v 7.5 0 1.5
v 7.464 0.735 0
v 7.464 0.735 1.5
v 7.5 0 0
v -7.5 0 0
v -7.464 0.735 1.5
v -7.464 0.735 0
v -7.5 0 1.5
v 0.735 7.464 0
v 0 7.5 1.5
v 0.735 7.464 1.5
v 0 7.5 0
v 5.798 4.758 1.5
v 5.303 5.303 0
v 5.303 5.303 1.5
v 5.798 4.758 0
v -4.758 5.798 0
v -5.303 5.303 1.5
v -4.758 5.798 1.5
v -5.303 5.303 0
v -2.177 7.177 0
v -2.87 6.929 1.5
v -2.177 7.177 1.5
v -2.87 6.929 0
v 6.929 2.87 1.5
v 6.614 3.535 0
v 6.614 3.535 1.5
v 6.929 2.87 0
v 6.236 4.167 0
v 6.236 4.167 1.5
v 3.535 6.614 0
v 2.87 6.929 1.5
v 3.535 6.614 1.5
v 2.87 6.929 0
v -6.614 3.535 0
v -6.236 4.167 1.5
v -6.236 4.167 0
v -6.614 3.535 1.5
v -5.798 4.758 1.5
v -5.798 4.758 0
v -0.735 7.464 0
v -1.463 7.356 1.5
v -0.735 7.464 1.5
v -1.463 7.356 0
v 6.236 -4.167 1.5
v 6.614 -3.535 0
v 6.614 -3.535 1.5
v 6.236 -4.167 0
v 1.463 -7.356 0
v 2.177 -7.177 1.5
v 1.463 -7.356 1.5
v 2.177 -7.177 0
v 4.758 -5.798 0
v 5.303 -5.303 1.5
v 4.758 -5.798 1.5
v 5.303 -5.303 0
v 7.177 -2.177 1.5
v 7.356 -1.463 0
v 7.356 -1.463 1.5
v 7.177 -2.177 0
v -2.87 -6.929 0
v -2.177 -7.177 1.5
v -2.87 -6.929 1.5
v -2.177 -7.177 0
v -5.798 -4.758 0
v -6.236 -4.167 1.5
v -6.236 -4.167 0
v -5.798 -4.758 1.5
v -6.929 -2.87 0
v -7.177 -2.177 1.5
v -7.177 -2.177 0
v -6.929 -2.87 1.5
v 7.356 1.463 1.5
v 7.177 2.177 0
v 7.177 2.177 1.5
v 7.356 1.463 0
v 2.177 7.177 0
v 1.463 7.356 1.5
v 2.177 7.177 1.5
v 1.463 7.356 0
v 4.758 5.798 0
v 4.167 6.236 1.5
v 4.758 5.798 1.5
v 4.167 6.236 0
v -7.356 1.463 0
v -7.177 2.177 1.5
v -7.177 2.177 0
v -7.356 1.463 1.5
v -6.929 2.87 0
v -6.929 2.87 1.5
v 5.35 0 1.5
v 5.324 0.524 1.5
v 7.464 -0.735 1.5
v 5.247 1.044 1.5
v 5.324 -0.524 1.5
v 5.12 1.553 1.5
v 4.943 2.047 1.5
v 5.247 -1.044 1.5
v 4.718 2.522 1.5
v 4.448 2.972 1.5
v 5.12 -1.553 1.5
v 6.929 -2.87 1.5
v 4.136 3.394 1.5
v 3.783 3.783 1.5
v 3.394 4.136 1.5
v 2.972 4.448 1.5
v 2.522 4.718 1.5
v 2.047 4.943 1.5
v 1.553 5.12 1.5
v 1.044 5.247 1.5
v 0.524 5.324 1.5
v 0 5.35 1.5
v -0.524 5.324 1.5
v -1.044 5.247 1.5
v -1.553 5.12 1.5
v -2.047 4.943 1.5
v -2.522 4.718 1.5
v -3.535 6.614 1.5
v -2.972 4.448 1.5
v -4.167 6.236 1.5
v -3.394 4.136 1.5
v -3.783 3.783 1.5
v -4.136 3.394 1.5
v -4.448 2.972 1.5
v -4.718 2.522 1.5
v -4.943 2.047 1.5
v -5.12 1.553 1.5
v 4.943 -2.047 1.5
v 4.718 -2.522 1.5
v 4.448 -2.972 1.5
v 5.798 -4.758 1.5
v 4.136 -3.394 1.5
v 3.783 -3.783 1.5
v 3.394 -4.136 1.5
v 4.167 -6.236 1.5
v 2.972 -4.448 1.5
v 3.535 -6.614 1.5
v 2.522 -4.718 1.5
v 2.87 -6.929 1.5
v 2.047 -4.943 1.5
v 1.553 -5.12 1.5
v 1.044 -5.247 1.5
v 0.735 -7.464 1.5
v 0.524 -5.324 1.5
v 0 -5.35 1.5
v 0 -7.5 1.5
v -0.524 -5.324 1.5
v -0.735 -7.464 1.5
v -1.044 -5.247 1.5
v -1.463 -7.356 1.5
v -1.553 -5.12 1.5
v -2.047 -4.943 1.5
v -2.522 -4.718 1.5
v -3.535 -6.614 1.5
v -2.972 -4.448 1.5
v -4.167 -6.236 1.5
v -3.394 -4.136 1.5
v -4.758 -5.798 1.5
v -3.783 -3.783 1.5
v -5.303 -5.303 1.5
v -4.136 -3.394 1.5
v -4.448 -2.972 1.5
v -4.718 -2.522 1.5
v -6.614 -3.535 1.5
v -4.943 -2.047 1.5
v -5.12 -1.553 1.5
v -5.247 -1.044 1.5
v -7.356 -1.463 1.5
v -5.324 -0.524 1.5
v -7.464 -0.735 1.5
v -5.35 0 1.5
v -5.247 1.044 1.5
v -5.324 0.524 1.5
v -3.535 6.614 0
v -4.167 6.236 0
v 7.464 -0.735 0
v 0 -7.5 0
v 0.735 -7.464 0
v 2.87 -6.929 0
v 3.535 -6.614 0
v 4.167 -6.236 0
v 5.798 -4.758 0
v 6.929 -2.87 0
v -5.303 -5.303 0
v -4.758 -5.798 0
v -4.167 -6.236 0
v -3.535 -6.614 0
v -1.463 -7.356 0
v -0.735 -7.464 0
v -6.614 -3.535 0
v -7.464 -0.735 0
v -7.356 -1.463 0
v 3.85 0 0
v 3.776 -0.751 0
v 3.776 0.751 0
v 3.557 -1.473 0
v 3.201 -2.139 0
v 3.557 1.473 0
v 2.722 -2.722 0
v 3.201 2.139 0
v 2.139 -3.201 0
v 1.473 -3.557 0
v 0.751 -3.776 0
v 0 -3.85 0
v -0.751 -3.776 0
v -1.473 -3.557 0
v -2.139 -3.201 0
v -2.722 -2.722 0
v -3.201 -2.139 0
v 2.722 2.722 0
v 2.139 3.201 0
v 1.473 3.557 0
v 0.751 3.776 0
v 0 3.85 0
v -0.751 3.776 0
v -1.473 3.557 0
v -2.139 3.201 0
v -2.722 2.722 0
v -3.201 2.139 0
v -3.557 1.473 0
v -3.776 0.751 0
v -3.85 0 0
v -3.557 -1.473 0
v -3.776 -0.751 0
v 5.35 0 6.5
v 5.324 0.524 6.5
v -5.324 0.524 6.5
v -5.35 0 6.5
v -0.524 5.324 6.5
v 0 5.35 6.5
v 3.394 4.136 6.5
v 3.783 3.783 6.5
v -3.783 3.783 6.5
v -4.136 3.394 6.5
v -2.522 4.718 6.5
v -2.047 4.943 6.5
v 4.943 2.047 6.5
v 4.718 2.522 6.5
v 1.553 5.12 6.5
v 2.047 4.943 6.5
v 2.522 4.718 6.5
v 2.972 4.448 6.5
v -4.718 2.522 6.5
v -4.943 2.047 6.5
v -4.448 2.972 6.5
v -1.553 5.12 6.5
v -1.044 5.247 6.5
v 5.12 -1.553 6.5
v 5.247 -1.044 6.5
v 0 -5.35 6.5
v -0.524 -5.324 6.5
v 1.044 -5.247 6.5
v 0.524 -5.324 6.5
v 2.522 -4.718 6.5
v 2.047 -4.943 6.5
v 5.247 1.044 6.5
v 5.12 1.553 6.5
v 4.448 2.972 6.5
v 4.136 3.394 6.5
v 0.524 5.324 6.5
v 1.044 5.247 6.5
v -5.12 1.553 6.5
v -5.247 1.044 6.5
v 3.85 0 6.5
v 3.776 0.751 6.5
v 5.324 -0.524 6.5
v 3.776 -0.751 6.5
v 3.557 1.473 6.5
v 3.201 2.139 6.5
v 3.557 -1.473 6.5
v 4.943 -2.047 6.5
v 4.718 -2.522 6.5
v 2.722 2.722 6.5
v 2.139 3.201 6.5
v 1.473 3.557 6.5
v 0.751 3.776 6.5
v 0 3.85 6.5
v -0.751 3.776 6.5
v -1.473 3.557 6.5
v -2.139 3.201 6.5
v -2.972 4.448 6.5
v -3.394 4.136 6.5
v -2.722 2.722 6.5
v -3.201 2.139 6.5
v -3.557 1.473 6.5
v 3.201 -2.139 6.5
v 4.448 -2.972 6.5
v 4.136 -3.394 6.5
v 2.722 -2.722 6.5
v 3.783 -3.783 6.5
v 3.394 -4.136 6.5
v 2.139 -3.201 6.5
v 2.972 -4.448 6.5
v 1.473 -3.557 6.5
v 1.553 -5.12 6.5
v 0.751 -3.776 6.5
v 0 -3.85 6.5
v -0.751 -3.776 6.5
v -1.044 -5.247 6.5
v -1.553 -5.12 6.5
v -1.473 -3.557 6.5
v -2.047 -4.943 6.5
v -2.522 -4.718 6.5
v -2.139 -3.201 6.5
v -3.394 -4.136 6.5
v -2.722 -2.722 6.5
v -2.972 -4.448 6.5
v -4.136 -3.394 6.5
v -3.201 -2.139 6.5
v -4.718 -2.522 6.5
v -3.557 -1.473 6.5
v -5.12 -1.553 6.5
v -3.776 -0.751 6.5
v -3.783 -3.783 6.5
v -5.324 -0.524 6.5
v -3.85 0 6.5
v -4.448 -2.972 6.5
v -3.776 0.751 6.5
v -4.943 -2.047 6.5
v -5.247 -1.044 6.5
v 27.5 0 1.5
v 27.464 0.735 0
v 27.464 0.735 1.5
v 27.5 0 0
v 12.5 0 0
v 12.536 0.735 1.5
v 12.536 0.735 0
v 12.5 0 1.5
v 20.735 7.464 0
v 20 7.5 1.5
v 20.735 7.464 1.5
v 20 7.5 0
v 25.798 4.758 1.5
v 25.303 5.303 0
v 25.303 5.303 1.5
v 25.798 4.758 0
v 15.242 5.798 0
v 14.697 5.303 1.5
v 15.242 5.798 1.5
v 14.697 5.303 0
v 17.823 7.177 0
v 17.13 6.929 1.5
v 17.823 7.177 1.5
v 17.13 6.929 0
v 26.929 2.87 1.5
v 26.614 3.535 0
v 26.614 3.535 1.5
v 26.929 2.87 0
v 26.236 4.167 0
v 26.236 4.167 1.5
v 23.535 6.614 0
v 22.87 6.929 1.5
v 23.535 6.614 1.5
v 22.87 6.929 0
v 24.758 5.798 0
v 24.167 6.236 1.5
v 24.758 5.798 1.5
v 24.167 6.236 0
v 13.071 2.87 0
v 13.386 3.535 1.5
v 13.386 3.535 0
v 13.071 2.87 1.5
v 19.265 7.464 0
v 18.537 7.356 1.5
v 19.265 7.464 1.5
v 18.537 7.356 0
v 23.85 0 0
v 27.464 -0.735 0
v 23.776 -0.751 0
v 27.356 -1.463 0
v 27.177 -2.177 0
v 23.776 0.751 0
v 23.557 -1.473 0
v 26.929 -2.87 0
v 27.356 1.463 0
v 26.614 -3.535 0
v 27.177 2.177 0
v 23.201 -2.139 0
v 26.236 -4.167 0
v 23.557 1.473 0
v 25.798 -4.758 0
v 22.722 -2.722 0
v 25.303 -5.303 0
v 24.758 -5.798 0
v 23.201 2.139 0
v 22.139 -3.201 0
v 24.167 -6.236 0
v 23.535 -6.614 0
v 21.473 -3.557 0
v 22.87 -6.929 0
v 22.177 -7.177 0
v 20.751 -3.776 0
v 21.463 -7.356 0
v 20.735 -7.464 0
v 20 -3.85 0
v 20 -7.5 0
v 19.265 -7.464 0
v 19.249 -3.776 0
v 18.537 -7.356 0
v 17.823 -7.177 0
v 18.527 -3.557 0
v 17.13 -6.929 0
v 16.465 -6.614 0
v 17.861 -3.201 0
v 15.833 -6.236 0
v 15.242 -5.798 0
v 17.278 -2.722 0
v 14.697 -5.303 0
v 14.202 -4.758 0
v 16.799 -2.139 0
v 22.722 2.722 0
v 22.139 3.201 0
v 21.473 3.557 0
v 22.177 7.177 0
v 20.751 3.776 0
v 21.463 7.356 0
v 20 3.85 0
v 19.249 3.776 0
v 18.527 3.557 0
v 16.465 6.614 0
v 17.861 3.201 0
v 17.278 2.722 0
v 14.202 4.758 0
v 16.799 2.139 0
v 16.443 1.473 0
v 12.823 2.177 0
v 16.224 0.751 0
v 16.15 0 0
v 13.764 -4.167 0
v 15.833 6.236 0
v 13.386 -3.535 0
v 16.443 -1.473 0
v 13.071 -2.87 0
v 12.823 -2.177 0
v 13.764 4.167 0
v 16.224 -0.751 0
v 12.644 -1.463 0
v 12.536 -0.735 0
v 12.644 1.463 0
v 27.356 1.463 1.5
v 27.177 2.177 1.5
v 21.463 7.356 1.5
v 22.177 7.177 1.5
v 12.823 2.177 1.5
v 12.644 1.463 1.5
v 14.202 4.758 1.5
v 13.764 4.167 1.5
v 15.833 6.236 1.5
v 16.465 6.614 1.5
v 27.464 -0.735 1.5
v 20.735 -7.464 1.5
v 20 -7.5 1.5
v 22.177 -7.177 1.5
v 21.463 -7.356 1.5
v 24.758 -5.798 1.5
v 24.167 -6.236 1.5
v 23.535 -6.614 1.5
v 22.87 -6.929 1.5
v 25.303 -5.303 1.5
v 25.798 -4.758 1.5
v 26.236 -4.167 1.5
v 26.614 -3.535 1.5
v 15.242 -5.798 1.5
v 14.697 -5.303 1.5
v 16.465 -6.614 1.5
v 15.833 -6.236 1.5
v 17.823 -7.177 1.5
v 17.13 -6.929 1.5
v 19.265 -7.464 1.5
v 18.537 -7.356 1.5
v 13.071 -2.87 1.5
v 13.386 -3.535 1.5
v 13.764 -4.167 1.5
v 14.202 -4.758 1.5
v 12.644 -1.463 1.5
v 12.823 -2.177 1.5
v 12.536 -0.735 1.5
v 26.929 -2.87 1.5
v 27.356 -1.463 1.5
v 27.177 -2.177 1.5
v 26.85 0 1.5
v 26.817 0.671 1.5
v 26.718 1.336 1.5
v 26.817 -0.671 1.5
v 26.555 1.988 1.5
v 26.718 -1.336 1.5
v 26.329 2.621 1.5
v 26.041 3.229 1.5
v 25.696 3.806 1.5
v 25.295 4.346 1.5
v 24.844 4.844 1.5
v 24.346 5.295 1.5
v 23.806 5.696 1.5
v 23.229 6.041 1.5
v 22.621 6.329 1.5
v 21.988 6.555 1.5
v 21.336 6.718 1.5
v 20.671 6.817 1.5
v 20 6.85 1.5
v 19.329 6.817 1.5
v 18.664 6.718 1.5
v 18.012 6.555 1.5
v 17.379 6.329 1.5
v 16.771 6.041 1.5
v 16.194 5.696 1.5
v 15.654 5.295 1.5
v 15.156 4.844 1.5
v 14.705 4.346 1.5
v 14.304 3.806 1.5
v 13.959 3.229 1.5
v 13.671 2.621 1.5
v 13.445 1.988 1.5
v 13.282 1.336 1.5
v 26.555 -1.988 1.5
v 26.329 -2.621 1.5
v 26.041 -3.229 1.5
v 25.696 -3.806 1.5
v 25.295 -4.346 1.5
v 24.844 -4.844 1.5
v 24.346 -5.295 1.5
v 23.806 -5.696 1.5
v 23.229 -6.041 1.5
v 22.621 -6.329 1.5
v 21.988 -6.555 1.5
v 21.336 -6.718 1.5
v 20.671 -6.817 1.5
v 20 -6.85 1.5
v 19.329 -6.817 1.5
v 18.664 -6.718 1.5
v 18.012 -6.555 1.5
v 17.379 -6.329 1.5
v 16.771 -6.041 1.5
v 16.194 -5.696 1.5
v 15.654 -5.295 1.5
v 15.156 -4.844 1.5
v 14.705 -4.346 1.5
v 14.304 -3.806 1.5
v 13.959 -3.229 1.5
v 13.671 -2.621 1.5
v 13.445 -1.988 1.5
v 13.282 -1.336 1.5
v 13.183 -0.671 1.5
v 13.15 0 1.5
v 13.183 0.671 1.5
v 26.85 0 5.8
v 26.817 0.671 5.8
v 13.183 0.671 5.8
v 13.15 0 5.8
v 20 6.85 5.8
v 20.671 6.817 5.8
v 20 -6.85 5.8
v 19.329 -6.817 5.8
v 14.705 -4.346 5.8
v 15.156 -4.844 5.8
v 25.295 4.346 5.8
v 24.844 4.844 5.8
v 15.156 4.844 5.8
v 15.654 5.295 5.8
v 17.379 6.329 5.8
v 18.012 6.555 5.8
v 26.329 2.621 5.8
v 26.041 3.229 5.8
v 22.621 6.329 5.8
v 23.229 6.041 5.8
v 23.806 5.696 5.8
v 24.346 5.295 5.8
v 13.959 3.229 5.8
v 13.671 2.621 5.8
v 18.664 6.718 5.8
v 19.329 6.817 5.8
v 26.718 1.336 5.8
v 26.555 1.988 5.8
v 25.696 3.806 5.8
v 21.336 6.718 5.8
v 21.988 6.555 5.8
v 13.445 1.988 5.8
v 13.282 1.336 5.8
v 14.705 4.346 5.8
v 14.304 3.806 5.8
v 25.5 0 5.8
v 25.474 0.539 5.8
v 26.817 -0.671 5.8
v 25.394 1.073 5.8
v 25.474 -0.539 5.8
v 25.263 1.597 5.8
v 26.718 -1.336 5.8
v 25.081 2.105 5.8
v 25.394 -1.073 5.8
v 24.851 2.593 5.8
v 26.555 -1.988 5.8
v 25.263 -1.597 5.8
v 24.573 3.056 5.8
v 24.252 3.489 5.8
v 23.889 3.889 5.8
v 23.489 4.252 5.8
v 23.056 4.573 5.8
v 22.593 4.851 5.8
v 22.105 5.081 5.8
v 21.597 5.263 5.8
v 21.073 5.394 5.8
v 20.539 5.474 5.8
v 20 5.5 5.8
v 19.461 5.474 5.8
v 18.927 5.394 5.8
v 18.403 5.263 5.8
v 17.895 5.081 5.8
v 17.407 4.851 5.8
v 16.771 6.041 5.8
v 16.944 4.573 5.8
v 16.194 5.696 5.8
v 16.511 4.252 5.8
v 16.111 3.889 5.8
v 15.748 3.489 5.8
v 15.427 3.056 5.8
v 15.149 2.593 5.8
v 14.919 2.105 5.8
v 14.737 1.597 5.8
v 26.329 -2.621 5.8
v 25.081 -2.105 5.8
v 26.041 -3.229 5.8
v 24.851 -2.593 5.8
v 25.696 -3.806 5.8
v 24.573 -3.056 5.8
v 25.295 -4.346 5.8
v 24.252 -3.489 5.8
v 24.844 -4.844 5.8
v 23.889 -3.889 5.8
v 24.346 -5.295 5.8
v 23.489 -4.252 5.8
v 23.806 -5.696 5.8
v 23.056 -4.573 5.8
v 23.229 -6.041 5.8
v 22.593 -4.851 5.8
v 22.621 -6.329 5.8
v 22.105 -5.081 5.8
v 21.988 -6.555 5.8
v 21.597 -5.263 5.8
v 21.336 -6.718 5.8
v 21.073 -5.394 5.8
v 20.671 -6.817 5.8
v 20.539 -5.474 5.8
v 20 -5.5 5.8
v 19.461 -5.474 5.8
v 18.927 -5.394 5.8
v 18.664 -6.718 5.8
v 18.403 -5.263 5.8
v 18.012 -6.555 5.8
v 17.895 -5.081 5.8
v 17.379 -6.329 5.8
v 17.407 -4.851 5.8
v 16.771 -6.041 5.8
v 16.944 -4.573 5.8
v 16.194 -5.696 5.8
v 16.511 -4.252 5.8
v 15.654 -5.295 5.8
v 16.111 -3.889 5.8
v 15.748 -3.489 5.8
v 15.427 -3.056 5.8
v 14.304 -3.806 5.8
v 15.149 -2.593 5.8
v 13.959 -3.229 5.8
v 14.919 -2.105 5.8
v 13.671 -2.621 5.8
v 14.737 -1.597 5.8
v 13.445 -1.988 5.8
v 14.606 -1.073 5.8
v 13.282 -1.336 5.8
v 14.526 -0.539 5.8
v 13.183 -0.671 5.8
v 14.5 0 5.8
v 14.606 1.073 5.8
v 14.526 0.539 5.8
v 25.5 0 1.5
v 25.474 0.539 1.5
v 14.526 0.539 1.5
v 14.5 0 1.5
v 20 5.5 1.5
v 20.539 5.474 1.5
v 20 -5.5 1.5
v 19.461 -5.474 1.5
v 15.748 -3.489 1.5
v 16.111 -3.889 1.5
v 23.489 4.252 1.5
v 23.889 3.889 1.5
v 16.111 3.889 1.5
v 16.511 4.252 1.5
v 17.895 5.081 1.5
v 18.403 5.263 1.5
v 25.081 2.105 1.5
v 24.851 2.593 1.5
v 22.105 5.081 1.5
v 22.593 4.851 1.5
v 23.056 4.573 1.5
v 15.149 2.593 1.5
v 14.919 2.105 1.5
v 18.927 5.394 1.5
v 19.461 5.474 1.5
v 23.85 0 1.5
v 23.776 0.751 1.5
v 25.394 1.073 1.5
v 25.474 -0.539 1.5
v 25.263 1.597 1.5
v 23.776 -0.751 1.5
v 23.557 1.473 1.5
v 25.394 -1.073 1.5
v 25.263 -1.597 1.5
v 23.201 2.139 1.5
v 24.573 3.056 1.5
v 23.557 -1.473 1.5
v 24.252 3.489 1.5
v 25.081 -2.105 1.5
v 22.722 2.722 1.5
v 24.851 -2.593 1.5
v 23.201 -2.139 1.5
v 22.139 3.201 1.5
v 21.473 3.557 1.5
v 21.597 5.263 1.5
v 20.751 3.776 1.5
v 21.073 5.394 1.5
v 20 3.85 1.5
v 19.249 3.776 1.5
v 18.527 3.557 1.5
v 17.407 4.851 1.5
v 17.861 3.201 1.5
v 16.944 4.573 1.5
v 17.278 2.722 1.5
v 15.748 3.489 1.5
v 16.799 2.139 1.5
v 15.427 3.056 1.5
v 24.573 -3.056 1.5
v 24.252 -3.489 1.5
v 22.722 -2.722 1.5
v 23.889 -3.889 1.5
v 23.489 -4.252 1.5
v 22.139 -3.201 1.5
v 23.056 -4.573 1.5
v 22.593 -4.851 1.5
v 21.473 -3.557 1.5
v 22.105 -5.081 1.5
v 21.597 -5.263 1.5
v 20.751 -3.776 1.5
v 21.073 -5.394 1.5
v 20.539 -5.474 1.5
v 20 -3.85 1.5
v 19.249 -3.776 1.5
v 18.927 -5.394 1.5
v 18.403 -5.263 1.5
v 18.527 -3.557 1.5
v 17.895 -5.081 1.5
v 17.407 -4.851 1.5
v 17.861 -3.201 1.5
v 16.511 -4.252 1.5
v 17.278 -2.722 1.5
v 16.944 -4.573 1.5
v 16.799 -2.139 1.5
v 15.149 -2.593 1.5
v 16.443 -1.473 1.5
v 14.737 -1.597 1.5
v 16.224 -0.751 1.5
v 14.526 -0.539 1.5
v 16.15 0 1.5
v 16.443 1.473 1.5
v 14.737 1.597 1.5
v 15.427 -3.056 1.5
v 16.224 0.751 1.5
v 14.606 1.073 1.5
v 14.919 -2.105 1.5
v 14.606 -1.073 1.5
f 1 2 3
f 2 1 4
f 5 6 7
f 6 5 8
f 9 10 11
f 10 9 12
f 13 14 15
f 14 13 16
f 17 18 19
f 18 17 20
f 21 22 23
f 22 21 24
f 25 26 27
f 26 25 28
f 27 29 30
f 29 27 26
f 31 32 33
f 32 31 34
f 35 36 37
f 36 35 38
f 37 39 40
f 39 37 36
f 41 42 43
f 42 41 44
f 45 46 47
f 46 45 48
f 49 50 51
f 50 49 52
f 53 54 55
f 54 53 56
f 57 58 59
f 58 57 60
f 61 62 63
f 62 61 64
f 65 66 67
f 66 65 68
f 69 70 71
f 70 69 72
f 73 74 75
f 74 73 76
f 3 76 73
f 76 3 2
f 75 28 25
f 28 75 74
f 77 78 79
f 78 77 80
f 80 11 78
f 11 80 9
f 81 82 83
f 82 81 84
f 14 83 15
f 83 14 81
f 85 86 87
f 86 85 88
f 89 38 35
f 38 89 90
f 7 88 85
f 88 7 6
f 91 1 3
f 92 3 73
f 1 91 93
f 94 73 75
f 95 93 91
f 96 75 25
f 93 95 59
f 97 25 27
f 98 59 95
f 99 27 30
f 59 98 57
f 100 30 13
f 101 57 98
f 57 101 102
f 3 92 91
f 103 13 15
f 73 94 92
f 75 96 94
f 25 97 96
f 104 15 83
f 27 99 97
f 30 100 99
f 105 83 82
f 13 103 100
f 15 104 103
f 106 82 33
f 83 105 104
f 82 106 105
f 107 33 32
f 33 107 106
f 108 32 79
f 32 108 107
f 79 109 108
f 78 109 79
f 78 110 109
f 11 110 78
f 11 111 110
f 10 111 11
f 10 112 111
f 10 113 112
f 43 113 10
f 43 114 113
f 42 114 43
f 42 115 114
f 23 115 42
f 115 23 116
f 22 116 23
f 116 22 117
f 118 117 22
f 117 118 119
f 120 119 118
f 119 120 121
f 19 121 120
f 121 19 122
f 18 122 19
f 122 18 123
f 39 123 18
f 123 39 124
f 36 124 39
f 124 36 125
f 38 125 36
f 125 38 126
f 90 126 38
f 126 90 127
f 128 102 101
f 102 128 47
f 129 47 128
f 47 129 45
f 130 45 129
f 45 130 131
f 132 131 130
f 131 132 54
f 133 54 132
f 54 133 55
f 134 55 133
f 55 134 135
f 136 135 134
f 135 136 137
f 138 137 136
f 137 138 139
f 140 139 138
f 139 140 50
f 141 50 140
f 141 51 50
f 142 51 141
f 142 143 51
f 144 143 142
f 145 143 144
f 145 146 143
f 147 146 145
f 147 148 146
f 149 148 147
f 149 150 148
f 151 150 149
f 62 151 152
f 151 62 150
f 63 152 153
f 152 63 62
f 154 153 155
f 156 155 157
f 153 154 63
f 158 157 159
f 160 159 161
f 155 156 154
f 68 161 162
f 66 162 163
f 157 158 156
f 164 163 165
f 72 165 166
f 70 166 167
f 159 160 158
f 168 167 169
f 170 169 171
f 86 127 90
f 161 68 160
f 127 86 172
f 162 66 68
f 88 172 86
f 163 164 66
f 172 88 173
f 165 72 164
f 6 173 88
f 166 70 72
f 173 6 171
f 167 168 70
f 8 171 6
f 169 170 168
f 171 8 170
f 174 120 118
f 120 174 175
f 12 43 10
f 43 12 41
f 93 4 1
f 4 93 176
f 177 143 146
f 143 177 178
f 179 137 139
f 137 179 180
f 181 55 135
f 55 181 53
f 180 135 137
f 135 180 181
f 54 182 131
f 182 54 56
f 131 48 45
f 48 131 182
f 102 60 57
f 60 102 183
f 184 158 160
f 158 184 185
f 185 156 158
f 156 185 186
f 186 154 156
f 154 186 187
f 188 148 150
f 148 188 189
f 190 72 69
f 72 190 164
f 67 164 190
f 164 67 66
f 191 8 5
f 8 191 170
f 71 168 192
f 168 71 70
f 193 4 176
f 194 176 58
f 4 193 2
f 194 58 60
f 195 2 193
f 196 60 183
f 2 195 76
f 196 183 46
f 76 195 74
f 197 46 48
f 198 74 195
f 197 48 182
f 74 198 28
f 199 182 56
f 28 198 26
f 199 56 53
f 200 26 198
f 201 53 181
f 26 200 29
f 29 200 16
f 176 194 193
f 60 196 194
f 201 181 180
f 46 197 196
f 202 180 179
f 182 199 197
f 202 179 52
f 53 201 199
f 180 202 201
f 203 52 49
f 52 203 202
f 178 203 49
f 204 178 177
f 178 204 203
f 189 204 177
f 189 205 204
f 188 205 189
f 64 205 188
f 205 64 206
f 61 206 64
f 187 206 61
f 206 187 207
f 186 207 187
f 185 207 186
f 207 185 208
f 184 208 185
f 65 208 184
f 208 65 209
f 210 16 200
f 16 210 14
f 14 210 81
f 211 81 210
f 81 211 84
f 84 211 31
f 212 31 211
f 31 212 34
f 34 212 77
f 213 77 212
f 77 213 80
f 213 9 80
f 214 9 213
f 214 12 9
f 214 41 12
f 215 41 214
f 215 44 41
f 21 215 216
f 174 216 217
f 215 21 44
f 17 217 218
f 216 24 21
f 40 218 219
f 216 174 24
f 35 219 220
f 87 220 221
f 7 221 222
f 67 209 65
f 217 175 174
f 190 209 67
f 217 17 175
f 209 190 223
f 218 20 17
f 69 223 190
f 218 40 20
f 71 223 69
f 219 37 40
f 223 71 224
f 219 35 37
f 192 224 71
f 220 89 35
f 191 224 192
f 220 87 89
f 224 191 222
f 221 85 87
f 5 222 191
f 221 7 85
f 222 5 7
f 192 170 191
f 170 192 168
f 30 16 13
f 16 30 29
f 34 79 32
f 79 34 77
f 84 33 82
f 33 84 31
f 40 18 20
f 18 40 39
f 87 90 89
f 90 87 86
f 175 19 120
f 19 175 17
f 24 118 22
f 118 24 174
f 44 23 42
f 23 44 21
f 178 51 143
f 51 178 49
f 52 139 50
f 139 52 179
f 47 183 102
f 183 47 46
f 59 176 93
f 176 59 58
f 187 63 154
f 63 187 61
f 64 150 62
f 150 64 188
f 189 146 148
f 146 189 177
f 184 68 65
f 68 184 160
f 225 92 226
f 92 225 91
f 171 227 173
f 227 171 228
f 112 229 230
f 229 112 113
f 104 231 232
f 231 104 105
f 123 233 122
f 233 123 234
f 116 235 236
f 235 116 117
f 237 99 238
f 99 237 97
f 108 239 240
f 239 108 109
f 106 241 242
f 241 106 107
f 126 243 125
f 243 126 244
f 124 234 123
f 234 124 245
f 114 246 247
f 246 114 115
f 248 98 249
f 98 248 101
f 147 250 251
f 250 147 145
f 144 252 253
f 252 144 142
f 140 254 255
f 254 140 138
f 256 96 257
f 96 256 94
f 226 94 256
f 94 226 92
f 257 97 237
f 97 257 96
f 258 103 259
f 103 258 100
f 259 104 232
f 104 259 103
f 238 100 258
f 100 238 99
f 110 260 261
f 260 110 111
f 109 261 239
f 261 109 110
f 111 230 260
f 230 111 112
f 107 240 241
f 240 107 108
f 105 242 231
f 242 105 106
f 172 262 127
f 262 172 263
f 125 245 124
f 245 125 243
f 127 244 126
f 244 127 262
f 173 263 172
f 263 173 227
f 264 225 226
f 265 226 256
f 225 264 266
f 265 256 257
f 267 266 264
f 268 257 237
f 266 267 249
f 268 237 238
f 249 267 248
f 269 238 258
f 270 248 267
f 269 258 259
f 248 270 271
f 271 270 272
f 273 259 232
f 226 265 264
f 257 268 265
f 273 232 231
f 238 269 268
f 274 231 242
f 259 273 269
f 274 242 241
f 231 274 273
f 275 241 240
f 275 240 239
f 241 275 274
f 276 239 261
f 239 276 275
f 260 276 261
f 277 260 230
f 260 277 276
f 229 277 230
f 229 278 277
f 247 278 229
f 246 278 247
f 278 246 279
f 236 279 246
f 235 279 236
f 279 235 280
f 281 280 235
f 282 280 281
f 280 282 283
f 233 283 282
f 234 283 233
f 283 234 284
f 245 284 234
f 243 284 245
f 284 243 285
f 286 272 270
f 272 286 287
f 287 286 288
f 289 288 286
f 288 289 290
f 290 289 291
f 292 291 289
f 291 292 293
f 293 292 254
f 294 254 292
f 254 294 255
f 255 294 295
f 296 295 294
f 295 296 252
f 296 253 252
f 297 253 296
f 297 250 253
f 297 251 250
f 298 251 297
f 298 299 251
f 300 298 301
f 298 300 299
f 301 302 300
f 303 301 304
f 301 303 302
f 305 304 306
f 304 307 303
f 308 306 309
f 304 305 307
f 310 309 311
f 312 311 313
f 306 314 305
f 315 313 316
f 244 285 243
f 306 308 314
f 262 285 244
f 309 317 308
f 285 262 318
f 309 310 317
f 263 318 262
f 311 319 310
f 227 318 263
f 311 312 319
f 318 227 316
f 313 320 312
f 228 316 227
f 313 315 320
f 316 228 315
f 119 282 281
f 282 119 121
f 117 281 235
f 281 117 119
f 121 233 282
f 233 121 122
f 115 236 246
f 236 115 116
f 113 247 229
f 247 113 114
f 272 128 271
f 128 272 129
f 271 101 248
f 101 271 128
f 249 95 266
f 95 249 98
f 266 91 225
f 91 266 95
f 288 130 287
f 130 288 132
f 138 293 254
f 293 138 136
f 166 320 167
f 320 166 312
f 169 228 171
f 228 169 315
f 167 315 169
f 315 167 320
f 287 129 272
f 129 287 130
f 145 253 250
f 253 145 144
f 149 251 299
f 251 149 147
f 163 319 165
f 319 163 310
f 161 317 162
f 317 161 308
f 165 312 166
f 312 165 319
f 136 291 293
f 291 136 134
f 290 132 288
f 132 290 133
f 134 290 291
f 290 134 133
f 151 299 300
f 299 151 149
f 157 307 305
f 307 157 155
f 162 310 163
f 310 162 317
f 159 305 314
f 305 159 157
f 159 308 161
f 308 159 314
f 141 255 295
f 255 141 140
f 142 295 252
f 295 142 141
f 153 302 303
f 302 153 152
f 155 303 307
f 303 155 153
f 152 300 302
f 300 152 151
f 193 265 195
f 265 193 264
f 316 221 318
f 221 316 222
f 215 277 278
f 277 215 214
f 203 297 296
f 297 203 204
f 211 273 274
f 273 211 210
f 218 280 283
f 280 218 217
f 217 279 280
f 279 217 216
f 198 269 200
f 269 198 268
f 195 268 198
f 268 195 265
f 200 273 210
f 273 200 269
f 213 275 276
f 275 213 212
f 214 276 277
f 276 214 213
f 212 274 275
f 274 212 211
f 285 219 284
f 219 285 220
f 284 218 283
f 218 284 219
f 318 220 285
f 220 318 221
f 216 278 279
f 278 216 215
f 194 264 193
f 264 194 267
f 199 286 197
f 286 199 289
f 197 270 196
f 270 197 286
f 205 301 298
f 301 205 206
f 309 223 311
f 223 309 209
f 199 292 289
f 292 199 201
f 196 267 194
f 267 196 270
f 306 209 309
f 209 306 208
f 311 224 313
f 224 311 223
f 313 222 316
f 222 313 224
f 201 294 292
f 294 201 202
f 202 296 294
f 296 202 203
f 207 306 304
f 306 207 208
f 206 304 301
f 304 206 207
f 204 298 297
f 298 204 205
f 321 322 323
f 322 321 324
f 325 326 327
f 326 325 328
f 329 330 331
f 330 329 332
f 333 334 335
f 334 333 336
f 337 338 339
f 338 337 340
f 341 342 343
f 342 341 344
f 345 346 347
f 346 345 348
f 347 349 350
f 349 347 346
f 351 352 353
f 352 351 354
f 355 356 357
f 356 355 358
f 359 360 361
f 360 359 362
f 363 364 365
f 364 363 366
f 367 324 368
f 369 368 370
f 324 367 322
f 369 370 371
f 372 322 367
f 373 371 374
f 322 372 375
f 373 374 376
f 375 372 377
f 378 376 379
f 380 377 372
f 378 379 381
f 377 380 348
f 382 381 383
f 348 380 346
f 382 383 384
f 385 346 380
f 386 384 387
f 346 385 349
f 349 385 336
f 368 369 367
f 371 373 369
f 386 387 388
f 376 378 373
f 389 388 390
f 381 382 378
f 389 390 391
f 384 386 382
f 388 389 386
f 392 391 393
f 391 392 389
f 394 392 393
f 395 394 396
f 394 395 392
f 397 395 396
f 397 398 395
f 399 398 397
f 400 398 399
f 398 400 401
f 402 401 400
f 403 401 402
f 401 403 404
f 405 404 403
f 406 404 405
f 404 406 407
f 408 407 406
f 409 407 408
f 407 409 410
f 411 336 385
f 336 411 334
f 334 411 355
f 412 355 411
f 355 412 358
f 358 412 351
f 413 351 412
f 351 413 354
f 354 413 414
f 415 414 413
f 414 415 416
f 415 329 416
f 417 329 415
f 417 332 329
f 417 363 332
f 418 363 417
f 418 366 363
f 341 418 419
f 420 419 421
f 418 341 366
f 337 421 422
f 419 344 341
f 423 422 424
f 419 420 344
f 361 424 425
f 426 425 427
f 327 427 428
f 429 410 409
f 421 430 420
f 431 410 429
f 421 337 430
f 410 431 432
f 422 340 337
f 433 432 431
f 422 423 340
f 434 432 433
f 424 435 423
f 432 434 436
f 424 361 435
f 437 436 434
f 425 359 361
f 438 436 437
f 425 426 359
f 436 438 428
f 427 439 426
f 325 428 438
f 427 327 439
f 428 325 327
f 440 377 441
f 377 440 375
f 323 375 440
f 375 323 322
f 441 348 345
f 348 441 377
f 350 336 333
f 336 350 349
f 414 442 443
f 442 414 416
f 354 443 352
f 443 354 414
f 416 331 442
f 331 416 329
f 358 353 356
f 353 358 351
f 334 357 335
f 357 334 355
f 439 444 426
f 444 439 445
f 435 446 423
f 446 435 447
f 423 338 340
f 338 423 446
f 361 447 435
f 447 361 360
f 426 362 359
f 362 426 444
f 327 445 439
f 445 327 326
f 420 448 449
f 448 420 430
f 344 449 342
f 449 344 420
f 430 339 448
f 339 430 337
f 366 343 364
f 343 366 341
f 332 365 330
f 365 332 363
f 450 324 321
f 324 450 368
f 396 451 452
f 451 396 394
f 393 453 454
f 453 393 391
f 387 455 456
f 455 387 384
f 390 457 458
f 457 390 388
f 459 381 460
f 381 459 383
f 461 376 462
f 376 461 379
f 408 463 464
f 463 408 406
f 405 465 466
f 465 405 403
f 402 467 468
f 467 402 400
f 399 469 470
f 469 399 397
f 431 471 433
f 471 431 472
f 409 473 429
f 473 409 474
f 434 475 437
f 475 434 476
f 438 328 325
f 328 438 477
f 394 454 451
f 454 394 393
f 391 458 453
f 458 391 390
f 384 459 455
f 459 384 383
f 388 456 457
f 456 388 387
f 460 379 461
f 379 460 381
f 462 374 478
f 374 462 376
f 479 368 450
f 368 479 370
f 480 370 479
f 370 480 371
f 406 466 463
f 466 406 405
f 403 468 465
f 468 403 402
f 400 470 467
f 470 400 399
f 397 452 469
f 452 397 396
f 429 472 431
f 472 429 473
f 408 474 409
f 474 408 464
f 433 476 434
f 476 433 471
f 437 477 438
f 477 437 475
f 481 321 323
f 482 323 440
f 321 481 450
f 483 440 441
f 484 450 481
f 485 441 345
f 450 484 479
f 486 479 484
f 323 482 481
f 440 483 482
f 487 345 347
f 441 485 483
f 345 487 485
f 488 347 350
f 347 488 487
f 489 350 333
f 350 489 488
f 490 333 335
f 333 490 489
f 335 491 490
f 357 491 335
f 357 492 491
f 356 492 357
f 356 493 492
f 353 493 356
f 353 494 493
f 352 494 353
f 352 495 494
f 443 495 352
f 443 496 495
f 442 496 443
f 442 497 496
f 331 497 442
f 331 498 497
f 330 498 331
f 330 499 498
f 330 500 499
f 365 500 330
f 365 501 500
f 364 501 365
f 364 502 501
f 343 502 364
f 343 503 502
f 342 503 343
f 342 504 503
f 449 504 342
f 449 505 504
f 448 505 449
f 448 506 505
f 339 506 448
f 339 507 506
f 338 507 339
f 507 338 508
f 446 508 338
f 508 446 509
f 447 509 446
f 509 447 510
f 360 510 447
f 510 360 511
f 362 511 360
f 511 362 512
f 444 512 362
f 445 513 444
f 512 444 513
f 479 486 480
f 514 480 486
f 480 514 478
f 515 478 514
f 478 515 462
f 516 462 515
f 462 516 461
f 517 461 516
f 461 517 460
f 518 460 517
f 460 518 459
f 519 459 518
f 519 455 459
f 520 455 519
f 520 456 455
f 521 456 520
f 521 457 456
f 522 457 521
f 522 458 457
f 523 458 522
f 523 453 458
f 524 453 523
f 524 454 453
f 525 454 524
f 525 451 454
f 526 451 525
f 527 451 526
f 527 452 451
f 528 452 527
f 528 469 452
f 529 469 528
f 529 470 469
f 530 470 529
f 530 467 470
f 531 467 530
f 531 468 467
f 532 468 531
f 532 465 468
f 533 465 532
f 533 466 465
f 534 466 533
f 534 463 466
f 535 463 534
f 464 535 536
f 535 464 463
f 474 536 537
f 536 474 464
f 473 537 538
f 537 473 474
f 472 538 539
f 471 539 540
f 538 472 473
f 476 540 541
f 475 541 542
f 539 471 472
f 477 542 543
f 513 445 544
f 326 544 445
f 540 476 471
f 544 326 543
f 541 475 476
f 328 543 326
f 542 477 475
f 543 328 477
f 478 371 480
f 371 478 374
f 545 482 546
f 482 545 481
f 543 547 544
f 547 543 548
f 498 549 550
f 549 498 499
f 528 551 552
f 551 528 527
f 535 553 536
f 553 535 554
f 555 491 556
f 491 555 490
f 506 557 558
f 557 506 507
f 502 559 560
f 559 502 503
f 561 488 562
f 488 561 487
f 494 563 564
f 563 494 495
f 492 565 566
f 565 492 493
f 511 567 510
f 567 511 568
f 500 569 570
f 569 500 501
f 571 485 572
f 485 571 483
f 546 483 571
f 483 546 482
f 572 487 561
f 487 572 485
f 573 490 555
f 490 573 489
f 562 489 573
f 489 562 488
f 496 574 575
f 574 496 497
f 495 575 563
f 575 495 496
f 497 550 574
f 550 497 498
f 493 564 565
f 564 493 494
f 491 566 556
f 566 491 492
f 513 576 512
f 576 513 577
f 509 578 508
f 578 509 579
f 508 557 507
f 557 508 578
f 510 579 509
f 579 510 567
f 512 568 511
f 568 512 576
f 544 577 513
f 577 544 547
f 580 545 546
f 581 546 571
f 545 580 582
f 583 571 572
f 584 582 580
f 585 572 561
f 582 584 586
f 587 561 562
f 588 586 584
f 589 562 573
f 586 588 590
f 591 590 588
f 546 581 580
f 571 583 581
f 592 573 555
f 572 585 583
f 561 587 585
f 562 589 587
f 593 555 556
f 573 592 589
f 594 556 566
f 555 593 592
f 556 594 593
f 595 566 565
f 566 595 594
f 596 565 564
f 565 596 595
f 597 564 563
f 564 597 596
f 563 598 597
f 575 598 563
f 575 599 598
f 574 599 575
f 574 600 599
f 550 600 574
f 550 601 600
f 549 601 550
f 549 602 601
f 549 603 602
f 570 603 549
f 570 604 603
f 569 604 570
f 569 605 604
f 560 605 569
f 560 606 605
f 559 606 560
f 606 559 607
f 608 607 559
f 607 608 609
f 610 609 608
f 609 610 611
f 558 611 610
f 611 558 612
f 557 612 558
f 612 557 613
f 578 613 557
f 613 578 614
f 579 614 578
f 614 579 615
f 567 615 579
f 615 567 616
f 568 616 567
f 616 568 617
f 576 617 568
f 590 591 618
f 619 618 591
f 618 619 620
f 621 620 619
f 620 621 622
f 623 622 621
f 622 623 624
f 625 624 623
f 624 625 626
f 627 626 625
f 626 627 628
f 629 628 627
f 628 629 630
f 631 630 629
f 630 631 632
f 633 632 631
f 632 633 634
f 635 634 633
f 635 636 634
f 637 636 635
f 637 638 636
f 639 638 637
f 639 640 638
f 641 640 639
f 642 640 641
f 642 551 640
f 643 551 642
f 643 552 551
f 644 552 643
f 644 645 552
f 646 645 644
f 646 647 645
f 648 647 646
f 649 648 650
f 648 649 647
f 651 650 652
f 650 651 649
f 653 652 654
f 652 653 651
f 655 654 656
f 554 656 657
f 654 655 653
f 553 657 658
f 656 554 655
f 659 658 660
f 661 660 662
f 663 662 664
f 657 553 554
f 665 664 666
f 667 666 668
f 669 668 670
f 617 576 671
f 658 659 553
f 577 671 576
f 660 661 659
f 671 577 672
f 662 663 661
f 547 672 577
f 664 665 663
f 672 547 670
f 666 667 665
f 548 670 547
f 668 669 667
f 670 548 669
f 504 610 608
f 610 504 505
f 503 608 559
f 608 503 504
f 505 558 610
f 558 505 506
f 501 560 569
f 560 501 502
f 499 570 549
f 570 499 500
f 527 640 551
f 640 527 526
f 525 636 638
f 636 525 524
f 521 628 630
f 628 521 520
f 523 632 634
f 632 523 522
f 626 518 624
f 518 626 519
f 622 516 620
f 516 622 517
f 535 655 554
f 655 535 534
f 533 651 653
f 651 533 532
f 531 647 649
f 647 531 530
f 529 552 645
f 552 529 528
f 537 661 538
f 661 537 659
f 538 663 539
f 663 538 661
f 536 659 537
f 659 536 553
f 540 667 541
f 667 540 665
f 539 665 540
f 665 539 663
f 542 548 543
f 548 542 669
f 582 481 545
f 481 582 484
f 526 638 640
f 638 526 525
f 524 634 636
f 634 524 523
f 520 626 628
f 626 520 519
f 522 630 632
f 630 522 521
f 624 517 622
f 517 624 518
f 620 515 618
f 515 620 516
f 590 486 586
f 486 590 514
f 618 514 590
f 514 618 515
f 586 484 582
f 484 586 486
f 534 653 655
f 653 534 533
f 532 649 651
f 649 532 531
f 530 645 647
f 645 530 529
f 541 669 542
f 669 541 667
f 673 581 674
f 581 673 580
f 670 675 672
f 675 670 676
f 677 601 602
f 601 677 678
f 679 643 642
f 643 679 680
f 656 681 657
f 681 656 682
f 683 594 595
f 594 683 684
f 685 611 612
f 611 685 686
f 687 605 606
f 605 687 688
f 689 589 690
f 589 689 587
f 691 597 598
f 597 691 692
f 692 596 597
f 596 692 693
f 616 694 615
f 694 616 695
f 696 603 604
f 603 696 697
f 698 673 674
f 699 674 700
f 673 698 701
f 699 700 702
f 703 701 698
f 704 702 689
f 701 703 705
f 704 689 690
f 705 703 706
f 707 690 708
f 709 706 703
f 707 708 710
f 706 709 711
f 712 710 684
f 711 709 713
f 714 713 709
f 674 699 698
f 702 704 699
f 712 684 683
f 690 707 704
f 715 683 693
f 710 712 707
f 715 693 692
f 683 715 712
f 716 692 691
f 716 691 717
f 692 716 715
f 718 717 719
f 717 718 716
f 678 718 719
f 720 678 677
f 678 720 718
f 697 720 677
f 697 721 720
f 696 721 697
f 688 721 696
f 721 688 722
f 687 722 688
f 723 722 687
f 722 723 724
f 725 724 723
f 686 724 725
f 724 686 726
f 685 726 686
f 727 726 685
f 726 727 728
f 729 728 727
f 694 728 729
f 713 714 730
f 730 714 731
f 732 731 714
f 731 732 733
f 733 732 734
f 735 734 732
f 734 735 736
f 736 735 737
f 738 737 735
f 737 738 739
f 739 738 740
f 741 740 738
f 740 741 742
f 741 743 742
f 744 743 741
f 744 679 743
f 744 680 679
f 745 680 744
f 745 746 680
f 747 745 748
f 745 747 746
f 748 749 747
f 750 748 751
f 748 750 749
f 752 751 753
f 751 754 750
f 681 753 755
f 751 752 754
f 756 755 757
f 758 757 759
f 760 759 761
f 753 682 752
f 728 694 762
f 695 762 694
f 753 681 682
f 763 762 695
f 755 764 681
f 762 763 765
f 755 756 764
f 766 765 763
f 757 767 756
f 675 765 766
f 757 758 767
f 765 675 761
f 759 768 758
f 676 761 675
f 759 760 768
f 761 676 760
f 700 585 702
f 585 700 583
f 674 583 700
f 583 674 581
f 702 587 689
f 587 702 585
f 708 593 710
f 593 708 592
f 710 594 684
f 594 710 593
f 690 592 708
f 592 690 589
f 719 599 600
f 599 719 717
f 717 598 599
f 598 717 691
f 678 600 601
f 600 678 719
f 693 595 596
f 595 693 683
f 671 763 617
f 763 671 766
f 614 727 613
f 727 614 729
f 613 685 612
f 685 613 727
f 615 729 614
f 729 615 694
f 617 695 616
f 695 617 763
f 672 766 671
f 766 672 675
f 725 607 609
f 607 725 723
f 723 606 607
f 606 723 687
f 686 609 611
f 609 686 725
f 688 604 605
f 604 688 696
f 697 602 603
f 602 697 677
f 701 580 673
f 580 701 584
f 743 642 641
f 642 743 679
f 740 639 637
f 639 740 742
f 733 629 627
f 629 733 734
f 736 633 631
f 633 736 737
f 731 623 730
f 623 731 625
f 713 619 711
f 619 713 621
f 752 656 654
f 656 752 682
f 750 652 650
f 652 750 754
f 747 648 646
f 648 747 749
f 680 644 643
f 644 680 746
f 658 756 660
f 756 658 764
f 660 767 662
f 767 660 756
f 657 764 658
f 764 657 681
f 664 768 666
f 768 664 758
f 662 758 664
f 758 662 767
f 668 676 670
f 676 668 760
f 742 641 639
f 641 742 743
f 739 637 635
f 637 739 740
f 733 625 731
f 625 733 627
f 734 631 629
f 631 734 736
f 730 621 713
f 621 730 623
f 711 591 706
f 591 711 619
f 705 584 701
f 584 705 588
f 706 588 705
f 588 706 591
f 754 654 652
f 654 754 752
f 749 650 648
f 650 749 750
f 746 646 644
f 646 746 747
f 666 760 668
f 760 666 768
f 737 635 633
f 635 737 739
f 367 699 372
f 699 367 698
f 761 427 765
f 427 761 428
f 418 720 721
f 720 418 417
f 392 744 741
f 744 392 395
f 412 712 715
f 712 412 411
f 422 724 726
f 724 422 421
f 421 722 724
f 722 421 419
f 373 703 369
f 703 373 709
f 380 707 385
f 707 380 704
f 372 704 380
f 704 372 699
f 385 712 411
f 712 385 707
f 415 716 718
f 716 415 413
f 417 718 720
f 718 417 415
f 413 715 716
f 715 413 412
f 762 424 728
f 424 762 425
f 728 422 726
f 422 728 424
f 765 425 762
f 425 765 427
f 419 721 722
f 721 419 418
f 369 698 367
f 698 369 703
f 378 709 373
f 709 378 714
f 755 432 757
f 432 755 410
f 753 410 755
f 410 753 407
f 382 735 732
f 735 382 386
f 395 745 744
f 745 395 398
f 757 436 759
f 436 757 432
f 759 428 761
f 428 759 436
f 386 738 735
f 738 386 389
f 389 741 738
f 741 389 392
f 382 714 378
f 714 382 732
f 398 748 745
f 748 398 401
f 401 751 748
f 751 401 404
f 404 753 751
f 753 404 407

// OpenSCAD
// Grommet for truck body hole - Bandeirante
// Two-piece: inner tube with flange + cap that glues on the other side

/* --- Parameters --- */
hole_d     = 11;    // body hole diameter
panel_t    = 0.5;   // panel thickness
wall_t     = 1.5;   // tube wall thickness
clearance  = 0.3;   // fit clearance
wire_d     = hole_d - clearance - wall_t * 2;  // maximize wire passage
flange_d   = 15;    // flange (stop) diameter
flange_t   = 1.5;   // flange thickness
tube_h     = 5;     // tube height beyond flange

tube_od = hole_d - clearance;

// Cap parameters
cap_d  = flange_d;
cap_t  = 1.5;       // cap thickness
cap_lip = 4.3;  // socket depth matches panel thickness

/* --- Part 1: Inner tube with flange --- */
module inner_tube() {
    difference() {
        union() {
            // Flange
            cylinder(h=flange_t, d=flange_d, $fn=64);
            // Tube
            translate([0, 0, flange_t])
                cylinder(h=tube_h, d=tube_od, $fn=64);
        }
        // Wire hole
        translate([0, 0, -1])
            cylinder(h=flange_t + tube_h + 2, d=wire_d, $fn=32);
    }
}

/* --- Part 2: Cap (glues on the other side) --- */
module cap() {
    difference() {
        union() {
            // Flat cap
            cylinder(h=cap_t, d=cap_d, $fn=64);
            // Socket that slides over the tube end
            translate([0, 0, cap_t])
                cylinder(h=cap_lip, d=tube_od + wall_t * 2, $fn=64);
        }
        // Socket bore (fits snug over tube)
        translate([0, 0, cap_t])
            cylinder(h=cap_lip + 1, d=tube_od + clearance, $fn=64);
        // Wire hole
        translate([0, 0, -1])
            cylinder(h=cap_t + cap_lip + 2, d=wire_d, $fn=32);
    }
}

/* --- Layout for printing --- */
inner_tube();

translate([flange_d + 5, 0, 0])
    cap();
